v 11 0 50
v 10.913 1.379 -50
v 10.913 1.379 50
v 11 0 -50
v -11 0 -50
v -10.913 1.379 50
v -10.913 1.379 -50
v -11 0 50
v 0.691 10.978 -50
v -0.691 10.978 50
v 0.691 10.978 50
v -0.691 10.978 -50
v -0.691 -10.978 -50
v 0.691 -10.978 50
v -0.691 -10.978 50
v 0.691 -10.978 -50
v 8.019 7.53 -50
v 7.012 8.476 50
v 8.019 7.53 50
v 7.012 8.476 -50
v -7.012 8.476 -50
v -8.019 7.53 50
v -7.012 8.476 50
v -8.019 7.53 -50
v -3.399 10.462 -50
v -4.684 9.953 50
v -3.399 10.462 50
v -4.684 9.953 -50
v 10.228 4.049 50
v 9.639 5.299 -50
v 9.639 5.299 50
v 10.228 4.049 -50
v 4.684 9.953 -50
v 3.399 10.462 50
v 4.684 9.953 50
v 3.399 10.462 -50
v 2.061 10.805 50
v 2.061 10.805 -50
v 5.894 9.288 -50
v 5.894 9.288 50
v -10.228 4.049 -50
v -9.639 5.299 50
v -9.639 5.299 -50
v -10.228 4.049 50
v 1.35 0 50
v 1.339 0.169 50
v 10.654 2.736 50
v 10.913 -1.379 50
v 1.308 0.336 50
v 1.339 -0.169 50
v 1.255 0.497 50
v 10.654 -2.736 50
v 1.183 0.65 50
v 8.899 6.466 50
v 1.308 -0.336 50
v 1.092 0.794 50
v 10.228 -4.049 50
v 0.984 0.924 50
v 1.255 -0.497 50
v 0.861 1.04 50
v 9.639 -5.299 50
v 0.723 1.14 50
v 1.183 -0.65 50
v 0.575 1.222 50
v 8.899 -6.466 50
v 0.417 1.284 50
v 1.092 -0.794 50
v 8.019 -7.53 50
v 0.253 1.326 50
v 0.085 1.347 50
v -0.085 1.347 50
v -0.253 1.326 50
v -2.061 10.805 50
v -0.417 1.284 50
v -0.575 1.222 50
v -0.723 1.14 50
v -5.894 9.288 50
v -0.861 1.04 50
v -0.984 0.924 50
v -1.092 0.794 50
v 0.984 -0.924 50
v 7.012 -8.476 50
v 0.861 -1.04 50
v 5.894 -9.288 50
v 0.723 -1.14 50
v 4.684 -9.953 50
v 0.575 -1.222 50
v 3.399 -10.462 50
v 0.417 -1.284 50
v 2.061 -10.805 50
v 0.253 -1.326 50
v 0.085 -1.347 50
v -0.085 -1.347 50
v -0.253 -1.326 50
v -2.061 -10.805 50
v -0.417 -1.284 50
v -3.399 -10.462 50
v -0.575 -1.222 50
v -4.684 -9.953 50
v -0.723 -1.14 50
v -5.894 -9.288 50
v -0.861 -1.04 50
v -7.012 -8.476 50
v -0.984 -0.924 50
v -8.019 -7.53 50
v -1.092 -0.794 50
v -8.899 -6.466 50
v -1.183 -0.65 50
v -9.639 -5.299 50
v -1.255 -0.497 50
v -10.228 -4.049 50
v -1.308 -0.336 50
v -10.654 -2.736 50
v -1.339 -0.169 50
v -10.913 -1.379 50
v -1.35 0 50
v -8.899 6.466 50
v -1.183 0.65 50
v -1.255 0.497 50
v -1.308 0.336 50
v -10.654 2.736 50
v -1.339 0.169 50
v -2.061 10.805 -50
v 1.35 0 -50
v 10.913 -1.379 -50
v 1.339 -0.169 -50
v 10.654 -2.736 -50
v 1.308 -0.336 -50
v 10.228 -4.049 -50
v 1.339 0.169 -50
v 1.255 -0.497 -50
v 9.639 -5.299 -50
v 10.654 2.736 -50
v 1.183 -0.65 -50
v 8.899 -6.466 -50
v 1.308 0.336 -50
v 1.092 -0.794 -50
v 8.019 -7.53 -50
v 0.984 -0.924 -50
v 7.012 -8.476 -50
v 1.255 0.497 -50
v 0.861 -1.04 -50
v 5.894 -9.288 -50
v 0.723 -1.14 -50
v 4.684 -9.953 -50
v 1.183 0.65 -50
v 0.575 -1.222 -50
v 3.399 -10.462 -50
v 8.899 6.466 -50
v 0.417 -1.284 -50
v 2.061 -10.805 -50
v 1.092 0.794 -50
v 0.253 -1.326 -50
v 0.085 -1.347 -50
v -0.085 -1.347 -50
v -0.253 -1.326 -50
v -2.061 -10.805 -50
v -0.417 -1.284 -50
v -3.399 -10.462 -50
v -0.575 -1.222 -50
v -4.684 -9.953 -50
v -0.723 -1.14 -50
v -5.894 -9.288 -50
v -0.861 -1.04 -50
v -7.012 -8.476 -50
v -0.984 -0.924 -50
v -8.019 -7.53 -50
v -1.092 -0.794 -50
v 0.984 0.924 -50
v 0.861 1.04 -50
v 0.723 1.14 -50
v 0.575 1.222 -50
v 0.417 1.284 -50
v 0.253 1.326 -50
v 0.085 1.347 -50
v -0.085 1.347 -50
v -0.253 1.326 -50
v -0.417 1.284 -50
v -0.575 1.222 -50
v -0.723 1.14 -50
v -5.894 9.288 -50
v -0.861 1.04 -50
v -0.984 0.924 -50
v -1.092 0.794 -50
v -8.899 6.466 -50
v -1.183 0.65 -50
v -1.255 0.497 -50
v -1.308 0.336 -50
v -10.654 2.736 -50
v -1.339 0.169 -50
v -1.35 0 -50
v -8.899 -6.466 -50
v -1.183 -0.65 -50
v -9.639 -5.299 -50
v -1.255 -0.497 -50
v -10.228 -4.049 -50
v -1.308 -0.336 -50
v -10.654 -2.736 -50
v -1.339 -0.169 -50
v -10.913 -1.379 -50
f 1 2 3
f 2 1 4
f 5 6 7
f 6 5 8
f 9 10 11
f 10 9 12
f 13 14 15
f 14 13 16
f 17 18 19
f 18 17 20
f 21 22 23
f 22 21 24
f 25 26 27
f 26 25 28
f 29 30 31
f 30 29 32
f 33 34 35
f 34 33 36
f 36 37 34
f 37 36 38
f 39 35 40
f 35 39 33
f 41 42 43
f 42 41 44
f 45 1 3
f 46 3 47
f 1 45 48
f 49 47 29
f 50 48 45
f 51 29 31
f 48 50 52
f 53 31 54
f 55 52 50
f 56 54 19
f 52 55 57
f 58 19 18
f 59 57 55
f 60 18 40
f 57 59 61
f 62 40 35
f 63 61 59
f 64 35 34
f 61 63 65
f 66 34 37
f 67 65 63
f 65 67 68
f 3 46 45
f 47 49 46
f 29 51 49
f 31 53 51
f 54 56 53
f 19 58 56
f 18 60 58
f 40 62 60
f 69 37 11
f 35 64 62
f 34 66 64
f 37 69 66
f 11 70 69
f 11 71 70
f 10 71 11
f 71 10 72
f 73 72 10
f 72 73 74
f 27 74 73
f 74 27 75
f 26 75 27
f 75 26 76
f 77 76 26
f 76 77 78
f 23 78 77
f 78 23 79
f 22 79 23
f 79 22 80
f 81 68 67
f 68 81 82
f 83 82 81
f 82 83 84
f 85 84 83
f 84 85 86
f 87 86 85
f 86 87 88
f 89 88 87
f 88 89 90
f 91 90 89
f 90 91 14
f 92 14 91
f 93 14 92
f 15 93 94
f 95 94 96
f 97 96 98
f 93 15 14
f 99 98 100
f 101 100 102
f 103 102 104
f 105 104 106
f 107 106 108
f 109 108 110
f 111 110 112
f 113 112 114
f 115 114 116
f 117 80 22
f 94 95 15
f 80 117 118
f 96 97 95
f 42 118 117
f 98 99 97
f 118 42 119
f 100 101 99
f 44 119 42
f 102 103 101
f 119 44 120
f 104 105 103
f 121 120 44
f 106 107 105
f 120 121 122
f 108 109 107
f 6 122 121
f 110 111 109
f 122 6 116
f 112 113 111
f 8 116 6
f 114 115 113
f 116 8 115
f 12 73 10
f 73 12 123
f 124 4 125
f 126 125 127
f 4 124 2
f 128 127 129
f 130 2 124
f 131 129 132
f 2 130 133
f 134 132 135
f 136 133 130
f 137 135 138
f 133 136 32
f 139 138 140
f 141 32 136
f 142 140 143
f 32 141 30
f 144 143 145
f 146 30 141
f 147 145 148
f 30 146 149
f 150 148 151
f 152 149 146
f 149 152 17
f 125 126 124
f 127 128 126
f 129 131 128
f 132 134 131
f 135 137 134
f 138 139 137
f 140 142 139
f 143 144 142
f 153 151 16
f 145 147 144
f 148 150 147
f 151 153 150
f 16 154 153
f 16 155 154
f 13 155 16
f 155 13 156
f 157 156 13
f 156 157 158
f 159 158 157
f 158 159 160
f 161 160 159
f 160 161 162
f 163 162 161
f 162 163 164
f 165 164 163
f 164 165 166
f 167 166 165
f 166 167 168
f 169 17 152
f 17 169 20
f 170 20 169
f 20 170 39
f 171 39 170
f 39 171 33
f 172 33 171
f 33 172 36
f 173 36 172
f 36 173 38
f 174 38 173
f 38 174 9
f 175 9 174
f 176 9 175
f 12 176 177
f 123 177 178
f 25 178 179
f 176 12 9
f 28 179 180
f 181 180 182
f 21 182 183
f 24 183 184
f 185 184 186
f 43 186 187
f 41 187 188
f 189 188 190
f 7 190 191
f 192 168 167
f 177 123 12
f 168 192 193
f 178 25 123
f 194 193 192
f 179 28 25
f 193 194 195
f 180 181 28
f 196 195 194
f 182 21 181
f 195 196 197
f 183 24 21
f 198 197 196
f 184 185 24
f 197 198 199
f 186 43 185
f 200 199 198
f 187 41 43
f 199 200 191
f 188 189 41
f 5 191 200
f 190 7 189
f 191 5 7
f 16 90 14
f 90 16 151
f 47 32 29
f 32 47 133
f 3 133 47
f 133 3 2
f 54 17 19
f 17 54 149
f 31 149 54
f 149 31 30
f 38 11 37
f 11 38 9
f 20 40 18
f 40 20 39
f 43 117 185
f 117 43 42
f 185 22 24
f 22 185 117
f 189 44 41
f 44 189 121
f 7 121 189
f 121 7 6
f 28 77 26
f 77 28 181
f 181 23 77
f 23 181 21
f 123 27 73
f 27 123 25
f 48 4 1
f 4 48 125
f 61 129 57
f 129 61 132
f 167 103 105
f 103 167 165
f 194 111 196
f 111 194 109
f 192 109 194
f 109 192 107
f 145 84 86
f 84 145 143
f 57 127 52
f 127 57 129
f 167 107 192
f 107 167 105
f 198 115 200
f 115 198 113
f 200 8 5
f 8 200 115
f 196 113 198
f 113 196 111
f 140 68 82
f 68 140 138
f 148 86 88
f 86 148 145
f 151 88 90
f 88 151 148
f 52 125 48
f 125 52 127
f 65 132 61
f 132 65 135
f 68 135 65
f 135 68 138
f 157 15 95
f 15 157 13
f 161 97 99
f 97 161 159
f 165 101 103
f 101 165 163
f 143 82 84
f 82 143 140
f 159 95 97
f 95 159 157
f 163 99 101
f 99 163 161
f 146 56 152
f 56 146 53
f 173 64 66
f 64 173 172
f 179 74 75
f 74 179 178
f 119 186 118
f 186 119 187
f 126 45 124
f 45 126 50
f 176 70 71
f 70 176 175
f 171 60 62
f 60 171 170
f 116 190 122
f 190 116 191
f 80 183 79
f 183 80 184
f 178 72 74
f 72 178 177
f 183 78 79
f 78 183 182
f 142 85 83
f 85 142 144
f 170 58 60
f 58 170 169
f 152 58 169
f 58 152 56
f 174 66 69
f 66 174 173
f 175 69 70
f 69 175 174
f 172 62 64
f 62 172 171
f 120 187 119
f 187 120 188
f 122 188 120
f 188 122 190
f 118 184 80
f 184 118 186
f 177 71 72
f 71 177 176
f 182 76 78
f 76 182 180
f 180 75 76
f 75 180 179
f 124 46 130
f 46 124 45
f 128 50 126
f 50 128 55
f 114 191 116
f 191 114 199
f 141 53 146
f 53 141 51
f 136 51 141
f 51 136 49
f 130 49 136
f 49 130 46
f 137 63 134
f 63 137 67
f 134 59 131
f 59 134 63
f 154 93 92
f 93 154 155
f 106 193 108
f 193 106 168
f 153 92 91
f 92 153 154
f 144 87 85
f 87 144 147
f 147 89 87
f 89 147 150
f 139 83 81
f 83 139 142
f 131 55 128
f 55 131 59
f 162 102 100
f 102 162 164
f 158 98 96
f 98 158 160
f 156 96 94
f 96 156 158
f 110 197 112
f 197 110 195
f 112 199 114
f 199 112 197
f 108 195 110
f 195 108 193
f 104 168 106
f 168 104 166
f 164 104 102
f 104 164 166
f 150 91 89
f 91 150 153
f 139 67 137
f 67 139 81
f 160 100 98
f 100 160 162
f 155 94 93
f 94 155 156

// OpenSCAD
$fn = 50;


difference() {
	union() {
		translate(v = [0, 0, -50.0000000000]) {
			cylinder(h = 100, r = 11.0000000000);
		}
	}
	union() {
		translate(v = [0, 0, -100.0000000000]) {
			cylinder(h = 200, r = 1.3500000000);
		}
	}
}
